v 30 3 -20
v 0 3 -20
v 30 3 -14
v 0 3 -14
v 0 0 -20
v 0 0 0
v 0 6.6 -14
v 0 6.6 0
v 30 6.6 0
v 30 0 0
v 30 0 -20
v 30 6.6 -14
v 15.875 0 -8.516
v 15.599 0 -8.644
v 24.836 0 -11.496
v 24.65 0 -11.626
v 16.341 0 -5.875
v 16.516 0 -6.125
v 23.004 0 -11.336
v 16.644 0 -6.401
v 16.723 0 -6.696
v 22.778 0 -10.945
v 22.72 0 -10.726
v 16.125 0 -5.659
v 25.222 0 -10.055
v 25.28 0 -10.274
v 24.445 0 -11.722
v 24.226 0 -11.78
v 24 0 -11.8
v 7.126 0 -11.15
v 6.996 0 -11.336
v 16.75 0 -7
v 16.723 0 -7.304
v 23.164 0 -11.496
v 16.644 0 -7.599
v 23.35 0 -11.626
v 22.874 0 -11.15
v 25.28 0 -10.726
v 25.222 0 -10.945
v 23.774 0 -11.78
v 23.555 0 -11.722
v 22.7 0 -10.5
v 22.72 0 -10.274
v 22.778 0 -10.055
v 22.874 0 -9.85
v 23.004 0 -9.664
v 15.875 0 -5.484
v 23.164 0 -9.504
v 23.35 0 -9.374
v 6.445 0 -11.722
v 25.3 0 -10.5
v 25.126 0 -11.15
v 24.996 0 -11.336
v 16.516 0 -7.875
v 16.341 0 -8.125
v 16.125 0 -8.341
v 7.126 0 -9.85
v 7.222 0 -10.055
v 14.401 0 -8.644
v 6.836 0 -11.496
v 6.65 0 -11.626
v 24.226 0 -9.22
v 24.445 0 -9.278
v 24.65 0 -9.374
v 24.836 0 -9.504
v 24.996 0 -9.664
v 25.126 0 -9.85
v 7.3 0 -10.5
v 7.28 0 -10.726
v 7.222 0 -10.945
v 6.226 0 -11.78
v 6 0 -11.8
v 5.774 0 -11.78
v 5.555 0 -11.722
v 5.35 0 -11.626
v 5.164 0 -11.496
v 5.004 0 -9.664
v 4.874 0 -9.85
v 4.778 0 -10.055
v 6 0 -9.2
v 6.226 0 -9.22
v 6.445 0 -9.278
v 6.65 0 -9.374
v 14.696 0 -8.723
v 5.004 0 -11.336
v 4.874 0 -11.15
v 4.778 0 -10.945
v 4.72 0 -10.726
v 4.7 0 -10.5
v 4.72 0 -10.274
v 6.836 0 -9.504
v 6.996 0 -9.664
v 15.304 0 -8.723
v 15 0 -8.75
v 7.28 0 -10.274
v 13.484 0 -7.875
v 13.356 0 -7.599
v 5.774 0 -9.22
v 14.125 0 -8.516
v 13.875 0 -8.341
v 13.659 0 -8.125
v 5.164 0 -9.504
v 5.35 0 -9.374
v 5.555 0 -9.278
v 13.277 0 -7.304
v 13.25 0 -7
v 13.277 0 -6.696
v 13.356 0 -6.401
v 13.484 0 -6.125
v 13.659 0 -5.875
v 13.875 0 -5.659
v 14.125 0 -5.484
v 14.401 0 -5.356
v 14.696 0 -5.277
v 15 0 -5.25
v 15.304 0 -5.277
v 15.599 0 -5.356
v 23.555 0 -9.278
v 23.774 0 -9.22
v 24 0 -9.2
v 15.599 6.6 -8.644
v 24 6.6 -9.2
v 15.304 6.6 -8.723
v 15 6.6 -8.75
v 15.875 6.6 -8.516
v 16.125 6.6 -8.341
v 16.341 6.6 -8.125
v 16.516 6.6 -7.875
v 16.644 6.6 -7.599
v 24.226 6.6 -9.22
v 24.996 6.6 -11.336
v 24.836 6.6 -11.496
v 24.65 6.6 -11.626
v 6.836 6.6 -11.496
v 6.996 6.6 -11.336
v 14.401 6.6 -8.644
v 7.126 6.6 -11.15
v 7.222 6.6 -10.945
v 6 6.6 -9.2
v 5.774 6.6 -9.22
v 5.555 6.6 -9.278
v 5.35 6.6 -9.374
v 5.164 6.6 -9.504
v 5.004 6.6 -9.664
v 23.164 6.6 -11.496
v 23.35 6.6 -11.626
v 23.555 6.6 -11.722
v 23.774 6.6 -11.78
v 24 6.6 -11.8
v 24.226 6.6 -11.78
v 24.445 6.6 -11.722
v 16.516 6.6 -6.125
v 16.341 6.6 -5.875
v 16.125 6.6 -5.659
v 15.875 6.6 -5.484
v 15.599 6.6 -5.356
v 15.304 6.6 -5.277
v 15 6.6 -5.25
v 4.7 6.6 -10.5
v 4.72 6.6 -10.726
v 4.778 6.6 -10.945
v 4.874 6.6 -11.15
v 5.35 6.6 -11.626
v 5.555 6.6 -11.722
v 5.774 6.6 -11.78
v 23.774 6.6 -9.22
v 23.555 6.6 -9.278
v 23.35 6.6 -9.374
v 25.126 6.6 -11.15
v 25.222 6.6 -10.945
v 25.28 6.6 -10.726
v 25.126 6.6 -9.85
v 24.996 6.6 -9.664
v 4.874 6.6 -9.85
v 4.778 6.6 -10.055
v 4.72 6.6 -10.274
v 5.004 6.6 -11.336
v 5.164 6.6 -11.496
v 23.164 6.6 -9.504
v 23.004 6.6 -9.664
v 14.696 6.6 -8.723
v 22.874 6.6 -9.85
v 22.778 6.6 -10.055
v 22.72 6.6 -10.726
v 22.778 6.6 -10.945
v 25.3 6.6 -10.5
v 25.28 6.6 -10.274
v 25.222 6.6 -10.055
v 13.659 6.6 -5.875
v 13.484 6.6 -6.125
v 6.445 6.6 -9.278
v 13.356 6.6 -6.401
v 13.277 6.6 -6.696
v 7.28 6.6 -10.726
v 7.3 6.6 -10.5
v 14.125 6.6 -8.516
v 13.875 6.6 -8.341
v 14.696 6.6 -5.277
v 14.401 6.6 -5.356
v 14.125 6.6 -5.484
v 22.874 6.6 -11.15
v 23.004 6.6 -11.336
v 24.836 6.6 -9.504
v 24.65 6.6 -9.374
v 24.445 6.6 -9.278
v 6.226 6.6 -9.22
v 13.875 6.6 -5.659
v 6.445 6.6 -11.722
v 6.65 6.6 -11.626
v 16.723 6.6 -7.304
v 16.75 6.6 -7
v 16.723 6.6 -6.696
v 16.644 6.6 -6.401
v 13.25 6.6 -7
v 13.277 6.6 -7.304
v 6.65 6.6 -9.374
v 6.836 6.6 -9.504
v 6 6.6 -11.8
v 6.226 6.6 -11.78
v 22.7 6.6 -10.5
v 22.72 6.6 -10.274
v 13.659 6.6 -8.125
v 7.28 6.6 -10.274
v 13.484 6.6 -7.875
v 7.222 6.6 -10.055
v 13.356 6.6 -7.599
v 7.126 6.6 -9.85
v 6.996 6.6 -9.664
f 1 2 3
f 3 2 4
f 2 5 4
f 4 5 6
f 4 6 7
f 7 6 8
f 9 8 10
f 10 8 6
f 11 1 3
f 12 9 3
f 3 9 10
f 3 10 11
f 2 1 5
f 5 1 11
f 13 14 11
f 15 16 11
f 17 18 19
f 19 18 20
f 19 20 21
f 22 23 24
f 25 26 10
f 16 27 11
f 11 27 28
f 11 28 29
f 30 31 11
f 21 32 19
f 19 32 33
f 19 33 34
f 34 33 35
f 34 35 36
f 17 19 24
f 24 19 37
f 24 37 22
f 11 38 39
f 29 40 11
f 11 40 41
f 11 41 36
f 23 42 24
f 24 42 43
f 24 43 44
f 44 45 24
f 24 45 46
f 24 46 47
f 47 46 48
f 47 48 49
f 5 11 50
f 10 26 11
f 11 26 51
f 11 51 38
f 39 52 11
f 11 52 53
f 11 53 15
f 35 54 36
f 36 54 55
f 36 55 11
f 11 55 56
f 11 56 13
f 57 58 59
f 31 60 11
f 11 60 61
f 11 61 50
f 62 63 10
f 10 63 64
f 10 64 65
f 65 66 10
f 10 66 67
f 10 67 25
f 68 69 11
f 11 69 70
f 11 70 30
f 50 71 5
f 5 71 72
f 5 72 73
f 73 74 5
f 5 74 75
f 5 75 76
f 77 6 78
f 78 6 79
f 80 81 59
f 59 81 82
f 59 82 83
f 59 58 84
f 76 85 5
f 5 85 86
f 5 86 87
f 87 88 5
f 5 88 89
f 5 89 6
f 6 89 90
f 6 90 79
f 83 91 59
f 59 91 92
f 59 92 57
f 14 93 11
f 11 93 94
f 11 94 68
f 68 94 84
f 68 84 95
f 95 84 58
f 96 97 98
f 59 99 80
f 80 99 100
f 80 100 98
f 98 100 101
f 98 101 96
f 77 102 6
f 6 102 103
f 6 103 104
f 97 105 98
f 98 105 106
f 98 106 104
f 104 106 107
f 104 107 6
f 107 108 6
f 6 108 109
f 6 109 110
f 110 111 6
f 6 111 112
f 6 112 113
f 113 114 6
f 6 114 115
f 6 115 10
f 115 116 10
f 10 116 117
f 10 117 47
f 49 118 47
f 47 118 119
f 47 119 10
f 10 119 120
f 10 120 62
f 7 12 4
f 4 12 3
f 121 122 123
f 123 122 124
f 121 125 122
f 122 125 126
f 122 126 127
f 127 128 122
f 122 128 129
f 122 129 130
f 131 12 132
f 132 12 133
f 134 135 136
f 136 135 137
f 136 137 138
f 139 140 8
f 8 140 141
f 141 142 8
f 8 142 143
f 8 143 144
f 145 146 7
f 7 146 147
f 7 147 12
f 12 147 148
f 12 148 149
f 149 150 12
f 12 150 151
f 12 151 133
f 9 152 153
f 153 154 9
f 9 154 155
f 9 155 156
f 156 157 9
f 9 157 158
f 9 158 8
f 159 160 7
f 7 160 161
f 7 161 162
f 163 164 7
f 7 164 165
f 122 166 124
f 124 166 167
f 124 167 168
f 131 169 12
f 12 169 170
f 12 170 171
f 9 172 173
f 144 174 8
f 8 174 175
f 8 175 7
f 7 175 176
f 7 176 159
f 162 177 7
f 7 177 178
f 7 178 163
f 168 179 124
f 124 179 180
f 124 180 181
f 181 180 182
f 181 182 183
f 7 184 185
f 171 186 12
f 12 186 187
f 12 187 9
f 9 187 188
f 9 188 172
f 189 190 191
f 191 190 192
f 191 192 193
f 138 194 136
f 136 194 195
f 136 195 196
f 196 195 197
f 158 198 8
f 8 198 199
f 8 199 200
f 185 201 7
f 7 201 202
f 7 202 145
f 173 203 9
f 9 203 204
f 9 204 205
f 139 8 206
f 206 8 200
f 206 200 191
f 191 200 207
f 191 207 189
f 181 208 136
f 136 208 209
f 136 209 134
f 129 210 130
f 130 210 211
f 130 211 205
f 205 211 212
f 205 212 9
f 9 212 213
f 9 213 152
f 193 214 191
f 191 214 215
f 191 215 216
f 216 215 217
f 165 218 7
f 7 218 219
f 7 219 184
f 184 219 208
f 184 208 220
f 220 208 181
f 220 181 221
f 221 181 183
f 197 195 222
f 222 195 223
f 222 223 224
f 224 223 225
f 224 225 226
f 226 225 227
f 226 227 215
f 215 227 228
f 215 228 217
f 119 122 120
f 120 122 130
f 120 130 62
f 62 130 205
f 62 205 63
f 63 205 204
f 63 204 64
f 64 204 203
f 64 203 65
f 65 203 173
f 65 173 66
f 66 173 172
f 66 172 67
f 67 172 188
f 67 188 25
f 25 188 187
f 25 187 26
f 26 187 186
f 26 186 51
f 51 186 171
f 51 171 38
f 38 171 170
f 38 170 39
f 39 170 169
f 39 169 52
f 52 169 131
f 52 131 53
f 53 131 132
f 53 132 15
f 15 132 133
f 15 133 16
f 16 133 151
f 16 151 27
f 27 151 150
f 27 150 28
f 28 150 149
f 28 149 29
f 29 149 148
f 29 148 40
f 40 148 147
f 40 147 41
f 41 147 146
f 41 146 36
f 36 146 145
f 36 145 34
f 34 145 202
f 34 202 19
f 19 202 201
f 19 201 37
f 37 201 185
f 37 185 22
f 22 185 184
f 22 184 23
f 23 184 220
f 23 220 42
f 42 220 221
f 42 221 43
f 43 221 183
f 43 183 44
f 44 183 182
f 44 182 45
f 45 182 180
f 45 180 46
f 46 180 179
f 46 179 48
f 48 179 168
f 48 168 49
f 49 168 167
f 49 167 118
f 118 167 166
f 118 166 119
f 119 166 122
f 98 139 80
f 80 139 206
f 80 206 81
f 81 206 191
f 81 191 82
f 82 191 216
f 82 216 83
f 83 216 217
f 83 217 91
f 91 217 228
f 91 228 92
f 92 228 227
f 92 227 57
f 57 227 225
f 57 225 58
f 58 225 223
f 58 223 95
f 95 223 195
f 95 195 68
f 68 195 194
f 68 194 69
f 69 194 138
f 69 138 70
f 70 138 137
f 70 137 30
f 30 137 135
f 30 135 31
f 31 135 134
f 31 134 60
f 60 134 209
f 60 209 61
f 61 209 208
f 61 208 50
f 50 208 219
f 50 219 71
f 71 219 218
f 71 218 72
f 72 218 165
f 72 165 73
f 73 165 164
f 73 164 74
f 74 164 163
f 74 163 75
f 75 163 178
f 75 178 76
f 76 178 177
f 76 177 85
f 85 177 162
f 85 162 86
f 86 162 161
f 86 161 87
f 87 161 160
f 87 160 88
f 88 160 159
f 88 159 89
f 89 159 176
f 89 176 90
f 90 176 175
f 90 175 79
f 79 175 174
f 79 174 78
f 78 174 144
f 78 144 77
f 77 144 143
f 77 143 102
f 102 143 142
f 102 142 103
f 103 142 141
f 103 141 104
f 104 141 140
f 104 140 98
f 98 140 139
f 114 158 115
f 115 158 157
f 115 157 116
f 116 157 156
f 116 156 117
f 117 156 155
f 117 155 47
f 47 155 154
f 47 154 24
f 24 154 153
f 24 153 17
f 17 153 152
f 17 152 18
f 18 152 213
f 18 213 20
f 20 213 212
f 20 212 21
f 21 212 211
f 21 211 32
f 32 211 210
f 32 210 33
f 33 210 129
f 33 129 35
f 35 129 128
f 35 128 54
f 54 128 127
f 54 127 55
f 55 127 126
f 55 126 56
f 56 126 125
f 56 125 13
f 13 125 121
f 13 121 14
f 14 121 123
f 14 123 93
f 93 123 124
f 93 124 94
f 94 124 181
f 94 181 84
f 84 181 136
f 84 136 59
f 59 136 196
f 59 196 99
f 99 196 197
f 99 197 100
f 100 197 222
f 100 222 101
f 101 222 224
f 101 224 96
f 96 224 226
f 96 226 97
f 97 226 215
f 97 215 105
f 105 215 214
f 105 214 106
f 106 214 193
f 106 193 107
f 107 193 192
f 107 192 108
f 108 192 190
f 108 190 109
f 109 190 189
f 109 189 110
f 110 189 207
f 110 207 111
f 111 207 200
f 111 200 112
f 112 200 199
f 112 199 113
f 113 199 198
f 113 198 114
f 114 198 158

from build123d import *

# Parameters (mm, degrees)
SKETCH_1_W              = 30
SKETCH_1_H              = 20
EXTRUDE_1_DEPTH         = 3
SKETCH_2_W              = 30
SKETCH_2_H              = 14
EXTRUDE_2_DEPTH         = 3.6
HOLE_WIZARD_2_6_2_6_1_D = 2.6
HOLE_WIZARD_3_5_3_5_1_D = 3.5


with BuildPart() as part:
    # 草圖1 → 填料-伸長1 (new body)
    with BuildSketch(Plane(origin=(0, 0, 0), x_dir=(1, 0, 0), z_dir=(0, 1, 0))):
        with Locations((15, 10)):
            Rectangle(SKETCH_1_W, SKETCH_1_H)
    extrude(amount=EXTRUDE_1_DEPTH)

    # 草圖2 → 填料-伸長2 (add)
    with BuildSketch(Plane(origin=(0, 3, 0), x_dir=(1, 0, 0), z_dir=(0, 1, 0))):
        with Locations((15, 7)):
            Rectangle(SKETCH_2_W, SKETCH_2_H)
    extrude(amount=EXTRUDE_2_DEPTH)

    # Ø2.6 (2.6) 直徑孔1 (through all)
    with Locations(Plane(origin=(0, 6.6, 0), x_dir=(1, 0, 0), z_dir=(0, 1, 0))):
        with Locations((6, 10.5), (15, 7), (24, 10.5)):
            Hole(HOLE_WIZARD_2_6_2_6_1_D / 2)

    # Ø3.5 (3.5) 直徑孔1 (through all)
    with Locations(Plane(origin=(0, 6.6, 0), x_dir=(1, 0, 0), z_dir=(0, 1, 0))):
        with Locations((15, 7)):
            Hole(HOLE_WIZARD_3_5_3_5_1_D / 2)


solid = part.part
